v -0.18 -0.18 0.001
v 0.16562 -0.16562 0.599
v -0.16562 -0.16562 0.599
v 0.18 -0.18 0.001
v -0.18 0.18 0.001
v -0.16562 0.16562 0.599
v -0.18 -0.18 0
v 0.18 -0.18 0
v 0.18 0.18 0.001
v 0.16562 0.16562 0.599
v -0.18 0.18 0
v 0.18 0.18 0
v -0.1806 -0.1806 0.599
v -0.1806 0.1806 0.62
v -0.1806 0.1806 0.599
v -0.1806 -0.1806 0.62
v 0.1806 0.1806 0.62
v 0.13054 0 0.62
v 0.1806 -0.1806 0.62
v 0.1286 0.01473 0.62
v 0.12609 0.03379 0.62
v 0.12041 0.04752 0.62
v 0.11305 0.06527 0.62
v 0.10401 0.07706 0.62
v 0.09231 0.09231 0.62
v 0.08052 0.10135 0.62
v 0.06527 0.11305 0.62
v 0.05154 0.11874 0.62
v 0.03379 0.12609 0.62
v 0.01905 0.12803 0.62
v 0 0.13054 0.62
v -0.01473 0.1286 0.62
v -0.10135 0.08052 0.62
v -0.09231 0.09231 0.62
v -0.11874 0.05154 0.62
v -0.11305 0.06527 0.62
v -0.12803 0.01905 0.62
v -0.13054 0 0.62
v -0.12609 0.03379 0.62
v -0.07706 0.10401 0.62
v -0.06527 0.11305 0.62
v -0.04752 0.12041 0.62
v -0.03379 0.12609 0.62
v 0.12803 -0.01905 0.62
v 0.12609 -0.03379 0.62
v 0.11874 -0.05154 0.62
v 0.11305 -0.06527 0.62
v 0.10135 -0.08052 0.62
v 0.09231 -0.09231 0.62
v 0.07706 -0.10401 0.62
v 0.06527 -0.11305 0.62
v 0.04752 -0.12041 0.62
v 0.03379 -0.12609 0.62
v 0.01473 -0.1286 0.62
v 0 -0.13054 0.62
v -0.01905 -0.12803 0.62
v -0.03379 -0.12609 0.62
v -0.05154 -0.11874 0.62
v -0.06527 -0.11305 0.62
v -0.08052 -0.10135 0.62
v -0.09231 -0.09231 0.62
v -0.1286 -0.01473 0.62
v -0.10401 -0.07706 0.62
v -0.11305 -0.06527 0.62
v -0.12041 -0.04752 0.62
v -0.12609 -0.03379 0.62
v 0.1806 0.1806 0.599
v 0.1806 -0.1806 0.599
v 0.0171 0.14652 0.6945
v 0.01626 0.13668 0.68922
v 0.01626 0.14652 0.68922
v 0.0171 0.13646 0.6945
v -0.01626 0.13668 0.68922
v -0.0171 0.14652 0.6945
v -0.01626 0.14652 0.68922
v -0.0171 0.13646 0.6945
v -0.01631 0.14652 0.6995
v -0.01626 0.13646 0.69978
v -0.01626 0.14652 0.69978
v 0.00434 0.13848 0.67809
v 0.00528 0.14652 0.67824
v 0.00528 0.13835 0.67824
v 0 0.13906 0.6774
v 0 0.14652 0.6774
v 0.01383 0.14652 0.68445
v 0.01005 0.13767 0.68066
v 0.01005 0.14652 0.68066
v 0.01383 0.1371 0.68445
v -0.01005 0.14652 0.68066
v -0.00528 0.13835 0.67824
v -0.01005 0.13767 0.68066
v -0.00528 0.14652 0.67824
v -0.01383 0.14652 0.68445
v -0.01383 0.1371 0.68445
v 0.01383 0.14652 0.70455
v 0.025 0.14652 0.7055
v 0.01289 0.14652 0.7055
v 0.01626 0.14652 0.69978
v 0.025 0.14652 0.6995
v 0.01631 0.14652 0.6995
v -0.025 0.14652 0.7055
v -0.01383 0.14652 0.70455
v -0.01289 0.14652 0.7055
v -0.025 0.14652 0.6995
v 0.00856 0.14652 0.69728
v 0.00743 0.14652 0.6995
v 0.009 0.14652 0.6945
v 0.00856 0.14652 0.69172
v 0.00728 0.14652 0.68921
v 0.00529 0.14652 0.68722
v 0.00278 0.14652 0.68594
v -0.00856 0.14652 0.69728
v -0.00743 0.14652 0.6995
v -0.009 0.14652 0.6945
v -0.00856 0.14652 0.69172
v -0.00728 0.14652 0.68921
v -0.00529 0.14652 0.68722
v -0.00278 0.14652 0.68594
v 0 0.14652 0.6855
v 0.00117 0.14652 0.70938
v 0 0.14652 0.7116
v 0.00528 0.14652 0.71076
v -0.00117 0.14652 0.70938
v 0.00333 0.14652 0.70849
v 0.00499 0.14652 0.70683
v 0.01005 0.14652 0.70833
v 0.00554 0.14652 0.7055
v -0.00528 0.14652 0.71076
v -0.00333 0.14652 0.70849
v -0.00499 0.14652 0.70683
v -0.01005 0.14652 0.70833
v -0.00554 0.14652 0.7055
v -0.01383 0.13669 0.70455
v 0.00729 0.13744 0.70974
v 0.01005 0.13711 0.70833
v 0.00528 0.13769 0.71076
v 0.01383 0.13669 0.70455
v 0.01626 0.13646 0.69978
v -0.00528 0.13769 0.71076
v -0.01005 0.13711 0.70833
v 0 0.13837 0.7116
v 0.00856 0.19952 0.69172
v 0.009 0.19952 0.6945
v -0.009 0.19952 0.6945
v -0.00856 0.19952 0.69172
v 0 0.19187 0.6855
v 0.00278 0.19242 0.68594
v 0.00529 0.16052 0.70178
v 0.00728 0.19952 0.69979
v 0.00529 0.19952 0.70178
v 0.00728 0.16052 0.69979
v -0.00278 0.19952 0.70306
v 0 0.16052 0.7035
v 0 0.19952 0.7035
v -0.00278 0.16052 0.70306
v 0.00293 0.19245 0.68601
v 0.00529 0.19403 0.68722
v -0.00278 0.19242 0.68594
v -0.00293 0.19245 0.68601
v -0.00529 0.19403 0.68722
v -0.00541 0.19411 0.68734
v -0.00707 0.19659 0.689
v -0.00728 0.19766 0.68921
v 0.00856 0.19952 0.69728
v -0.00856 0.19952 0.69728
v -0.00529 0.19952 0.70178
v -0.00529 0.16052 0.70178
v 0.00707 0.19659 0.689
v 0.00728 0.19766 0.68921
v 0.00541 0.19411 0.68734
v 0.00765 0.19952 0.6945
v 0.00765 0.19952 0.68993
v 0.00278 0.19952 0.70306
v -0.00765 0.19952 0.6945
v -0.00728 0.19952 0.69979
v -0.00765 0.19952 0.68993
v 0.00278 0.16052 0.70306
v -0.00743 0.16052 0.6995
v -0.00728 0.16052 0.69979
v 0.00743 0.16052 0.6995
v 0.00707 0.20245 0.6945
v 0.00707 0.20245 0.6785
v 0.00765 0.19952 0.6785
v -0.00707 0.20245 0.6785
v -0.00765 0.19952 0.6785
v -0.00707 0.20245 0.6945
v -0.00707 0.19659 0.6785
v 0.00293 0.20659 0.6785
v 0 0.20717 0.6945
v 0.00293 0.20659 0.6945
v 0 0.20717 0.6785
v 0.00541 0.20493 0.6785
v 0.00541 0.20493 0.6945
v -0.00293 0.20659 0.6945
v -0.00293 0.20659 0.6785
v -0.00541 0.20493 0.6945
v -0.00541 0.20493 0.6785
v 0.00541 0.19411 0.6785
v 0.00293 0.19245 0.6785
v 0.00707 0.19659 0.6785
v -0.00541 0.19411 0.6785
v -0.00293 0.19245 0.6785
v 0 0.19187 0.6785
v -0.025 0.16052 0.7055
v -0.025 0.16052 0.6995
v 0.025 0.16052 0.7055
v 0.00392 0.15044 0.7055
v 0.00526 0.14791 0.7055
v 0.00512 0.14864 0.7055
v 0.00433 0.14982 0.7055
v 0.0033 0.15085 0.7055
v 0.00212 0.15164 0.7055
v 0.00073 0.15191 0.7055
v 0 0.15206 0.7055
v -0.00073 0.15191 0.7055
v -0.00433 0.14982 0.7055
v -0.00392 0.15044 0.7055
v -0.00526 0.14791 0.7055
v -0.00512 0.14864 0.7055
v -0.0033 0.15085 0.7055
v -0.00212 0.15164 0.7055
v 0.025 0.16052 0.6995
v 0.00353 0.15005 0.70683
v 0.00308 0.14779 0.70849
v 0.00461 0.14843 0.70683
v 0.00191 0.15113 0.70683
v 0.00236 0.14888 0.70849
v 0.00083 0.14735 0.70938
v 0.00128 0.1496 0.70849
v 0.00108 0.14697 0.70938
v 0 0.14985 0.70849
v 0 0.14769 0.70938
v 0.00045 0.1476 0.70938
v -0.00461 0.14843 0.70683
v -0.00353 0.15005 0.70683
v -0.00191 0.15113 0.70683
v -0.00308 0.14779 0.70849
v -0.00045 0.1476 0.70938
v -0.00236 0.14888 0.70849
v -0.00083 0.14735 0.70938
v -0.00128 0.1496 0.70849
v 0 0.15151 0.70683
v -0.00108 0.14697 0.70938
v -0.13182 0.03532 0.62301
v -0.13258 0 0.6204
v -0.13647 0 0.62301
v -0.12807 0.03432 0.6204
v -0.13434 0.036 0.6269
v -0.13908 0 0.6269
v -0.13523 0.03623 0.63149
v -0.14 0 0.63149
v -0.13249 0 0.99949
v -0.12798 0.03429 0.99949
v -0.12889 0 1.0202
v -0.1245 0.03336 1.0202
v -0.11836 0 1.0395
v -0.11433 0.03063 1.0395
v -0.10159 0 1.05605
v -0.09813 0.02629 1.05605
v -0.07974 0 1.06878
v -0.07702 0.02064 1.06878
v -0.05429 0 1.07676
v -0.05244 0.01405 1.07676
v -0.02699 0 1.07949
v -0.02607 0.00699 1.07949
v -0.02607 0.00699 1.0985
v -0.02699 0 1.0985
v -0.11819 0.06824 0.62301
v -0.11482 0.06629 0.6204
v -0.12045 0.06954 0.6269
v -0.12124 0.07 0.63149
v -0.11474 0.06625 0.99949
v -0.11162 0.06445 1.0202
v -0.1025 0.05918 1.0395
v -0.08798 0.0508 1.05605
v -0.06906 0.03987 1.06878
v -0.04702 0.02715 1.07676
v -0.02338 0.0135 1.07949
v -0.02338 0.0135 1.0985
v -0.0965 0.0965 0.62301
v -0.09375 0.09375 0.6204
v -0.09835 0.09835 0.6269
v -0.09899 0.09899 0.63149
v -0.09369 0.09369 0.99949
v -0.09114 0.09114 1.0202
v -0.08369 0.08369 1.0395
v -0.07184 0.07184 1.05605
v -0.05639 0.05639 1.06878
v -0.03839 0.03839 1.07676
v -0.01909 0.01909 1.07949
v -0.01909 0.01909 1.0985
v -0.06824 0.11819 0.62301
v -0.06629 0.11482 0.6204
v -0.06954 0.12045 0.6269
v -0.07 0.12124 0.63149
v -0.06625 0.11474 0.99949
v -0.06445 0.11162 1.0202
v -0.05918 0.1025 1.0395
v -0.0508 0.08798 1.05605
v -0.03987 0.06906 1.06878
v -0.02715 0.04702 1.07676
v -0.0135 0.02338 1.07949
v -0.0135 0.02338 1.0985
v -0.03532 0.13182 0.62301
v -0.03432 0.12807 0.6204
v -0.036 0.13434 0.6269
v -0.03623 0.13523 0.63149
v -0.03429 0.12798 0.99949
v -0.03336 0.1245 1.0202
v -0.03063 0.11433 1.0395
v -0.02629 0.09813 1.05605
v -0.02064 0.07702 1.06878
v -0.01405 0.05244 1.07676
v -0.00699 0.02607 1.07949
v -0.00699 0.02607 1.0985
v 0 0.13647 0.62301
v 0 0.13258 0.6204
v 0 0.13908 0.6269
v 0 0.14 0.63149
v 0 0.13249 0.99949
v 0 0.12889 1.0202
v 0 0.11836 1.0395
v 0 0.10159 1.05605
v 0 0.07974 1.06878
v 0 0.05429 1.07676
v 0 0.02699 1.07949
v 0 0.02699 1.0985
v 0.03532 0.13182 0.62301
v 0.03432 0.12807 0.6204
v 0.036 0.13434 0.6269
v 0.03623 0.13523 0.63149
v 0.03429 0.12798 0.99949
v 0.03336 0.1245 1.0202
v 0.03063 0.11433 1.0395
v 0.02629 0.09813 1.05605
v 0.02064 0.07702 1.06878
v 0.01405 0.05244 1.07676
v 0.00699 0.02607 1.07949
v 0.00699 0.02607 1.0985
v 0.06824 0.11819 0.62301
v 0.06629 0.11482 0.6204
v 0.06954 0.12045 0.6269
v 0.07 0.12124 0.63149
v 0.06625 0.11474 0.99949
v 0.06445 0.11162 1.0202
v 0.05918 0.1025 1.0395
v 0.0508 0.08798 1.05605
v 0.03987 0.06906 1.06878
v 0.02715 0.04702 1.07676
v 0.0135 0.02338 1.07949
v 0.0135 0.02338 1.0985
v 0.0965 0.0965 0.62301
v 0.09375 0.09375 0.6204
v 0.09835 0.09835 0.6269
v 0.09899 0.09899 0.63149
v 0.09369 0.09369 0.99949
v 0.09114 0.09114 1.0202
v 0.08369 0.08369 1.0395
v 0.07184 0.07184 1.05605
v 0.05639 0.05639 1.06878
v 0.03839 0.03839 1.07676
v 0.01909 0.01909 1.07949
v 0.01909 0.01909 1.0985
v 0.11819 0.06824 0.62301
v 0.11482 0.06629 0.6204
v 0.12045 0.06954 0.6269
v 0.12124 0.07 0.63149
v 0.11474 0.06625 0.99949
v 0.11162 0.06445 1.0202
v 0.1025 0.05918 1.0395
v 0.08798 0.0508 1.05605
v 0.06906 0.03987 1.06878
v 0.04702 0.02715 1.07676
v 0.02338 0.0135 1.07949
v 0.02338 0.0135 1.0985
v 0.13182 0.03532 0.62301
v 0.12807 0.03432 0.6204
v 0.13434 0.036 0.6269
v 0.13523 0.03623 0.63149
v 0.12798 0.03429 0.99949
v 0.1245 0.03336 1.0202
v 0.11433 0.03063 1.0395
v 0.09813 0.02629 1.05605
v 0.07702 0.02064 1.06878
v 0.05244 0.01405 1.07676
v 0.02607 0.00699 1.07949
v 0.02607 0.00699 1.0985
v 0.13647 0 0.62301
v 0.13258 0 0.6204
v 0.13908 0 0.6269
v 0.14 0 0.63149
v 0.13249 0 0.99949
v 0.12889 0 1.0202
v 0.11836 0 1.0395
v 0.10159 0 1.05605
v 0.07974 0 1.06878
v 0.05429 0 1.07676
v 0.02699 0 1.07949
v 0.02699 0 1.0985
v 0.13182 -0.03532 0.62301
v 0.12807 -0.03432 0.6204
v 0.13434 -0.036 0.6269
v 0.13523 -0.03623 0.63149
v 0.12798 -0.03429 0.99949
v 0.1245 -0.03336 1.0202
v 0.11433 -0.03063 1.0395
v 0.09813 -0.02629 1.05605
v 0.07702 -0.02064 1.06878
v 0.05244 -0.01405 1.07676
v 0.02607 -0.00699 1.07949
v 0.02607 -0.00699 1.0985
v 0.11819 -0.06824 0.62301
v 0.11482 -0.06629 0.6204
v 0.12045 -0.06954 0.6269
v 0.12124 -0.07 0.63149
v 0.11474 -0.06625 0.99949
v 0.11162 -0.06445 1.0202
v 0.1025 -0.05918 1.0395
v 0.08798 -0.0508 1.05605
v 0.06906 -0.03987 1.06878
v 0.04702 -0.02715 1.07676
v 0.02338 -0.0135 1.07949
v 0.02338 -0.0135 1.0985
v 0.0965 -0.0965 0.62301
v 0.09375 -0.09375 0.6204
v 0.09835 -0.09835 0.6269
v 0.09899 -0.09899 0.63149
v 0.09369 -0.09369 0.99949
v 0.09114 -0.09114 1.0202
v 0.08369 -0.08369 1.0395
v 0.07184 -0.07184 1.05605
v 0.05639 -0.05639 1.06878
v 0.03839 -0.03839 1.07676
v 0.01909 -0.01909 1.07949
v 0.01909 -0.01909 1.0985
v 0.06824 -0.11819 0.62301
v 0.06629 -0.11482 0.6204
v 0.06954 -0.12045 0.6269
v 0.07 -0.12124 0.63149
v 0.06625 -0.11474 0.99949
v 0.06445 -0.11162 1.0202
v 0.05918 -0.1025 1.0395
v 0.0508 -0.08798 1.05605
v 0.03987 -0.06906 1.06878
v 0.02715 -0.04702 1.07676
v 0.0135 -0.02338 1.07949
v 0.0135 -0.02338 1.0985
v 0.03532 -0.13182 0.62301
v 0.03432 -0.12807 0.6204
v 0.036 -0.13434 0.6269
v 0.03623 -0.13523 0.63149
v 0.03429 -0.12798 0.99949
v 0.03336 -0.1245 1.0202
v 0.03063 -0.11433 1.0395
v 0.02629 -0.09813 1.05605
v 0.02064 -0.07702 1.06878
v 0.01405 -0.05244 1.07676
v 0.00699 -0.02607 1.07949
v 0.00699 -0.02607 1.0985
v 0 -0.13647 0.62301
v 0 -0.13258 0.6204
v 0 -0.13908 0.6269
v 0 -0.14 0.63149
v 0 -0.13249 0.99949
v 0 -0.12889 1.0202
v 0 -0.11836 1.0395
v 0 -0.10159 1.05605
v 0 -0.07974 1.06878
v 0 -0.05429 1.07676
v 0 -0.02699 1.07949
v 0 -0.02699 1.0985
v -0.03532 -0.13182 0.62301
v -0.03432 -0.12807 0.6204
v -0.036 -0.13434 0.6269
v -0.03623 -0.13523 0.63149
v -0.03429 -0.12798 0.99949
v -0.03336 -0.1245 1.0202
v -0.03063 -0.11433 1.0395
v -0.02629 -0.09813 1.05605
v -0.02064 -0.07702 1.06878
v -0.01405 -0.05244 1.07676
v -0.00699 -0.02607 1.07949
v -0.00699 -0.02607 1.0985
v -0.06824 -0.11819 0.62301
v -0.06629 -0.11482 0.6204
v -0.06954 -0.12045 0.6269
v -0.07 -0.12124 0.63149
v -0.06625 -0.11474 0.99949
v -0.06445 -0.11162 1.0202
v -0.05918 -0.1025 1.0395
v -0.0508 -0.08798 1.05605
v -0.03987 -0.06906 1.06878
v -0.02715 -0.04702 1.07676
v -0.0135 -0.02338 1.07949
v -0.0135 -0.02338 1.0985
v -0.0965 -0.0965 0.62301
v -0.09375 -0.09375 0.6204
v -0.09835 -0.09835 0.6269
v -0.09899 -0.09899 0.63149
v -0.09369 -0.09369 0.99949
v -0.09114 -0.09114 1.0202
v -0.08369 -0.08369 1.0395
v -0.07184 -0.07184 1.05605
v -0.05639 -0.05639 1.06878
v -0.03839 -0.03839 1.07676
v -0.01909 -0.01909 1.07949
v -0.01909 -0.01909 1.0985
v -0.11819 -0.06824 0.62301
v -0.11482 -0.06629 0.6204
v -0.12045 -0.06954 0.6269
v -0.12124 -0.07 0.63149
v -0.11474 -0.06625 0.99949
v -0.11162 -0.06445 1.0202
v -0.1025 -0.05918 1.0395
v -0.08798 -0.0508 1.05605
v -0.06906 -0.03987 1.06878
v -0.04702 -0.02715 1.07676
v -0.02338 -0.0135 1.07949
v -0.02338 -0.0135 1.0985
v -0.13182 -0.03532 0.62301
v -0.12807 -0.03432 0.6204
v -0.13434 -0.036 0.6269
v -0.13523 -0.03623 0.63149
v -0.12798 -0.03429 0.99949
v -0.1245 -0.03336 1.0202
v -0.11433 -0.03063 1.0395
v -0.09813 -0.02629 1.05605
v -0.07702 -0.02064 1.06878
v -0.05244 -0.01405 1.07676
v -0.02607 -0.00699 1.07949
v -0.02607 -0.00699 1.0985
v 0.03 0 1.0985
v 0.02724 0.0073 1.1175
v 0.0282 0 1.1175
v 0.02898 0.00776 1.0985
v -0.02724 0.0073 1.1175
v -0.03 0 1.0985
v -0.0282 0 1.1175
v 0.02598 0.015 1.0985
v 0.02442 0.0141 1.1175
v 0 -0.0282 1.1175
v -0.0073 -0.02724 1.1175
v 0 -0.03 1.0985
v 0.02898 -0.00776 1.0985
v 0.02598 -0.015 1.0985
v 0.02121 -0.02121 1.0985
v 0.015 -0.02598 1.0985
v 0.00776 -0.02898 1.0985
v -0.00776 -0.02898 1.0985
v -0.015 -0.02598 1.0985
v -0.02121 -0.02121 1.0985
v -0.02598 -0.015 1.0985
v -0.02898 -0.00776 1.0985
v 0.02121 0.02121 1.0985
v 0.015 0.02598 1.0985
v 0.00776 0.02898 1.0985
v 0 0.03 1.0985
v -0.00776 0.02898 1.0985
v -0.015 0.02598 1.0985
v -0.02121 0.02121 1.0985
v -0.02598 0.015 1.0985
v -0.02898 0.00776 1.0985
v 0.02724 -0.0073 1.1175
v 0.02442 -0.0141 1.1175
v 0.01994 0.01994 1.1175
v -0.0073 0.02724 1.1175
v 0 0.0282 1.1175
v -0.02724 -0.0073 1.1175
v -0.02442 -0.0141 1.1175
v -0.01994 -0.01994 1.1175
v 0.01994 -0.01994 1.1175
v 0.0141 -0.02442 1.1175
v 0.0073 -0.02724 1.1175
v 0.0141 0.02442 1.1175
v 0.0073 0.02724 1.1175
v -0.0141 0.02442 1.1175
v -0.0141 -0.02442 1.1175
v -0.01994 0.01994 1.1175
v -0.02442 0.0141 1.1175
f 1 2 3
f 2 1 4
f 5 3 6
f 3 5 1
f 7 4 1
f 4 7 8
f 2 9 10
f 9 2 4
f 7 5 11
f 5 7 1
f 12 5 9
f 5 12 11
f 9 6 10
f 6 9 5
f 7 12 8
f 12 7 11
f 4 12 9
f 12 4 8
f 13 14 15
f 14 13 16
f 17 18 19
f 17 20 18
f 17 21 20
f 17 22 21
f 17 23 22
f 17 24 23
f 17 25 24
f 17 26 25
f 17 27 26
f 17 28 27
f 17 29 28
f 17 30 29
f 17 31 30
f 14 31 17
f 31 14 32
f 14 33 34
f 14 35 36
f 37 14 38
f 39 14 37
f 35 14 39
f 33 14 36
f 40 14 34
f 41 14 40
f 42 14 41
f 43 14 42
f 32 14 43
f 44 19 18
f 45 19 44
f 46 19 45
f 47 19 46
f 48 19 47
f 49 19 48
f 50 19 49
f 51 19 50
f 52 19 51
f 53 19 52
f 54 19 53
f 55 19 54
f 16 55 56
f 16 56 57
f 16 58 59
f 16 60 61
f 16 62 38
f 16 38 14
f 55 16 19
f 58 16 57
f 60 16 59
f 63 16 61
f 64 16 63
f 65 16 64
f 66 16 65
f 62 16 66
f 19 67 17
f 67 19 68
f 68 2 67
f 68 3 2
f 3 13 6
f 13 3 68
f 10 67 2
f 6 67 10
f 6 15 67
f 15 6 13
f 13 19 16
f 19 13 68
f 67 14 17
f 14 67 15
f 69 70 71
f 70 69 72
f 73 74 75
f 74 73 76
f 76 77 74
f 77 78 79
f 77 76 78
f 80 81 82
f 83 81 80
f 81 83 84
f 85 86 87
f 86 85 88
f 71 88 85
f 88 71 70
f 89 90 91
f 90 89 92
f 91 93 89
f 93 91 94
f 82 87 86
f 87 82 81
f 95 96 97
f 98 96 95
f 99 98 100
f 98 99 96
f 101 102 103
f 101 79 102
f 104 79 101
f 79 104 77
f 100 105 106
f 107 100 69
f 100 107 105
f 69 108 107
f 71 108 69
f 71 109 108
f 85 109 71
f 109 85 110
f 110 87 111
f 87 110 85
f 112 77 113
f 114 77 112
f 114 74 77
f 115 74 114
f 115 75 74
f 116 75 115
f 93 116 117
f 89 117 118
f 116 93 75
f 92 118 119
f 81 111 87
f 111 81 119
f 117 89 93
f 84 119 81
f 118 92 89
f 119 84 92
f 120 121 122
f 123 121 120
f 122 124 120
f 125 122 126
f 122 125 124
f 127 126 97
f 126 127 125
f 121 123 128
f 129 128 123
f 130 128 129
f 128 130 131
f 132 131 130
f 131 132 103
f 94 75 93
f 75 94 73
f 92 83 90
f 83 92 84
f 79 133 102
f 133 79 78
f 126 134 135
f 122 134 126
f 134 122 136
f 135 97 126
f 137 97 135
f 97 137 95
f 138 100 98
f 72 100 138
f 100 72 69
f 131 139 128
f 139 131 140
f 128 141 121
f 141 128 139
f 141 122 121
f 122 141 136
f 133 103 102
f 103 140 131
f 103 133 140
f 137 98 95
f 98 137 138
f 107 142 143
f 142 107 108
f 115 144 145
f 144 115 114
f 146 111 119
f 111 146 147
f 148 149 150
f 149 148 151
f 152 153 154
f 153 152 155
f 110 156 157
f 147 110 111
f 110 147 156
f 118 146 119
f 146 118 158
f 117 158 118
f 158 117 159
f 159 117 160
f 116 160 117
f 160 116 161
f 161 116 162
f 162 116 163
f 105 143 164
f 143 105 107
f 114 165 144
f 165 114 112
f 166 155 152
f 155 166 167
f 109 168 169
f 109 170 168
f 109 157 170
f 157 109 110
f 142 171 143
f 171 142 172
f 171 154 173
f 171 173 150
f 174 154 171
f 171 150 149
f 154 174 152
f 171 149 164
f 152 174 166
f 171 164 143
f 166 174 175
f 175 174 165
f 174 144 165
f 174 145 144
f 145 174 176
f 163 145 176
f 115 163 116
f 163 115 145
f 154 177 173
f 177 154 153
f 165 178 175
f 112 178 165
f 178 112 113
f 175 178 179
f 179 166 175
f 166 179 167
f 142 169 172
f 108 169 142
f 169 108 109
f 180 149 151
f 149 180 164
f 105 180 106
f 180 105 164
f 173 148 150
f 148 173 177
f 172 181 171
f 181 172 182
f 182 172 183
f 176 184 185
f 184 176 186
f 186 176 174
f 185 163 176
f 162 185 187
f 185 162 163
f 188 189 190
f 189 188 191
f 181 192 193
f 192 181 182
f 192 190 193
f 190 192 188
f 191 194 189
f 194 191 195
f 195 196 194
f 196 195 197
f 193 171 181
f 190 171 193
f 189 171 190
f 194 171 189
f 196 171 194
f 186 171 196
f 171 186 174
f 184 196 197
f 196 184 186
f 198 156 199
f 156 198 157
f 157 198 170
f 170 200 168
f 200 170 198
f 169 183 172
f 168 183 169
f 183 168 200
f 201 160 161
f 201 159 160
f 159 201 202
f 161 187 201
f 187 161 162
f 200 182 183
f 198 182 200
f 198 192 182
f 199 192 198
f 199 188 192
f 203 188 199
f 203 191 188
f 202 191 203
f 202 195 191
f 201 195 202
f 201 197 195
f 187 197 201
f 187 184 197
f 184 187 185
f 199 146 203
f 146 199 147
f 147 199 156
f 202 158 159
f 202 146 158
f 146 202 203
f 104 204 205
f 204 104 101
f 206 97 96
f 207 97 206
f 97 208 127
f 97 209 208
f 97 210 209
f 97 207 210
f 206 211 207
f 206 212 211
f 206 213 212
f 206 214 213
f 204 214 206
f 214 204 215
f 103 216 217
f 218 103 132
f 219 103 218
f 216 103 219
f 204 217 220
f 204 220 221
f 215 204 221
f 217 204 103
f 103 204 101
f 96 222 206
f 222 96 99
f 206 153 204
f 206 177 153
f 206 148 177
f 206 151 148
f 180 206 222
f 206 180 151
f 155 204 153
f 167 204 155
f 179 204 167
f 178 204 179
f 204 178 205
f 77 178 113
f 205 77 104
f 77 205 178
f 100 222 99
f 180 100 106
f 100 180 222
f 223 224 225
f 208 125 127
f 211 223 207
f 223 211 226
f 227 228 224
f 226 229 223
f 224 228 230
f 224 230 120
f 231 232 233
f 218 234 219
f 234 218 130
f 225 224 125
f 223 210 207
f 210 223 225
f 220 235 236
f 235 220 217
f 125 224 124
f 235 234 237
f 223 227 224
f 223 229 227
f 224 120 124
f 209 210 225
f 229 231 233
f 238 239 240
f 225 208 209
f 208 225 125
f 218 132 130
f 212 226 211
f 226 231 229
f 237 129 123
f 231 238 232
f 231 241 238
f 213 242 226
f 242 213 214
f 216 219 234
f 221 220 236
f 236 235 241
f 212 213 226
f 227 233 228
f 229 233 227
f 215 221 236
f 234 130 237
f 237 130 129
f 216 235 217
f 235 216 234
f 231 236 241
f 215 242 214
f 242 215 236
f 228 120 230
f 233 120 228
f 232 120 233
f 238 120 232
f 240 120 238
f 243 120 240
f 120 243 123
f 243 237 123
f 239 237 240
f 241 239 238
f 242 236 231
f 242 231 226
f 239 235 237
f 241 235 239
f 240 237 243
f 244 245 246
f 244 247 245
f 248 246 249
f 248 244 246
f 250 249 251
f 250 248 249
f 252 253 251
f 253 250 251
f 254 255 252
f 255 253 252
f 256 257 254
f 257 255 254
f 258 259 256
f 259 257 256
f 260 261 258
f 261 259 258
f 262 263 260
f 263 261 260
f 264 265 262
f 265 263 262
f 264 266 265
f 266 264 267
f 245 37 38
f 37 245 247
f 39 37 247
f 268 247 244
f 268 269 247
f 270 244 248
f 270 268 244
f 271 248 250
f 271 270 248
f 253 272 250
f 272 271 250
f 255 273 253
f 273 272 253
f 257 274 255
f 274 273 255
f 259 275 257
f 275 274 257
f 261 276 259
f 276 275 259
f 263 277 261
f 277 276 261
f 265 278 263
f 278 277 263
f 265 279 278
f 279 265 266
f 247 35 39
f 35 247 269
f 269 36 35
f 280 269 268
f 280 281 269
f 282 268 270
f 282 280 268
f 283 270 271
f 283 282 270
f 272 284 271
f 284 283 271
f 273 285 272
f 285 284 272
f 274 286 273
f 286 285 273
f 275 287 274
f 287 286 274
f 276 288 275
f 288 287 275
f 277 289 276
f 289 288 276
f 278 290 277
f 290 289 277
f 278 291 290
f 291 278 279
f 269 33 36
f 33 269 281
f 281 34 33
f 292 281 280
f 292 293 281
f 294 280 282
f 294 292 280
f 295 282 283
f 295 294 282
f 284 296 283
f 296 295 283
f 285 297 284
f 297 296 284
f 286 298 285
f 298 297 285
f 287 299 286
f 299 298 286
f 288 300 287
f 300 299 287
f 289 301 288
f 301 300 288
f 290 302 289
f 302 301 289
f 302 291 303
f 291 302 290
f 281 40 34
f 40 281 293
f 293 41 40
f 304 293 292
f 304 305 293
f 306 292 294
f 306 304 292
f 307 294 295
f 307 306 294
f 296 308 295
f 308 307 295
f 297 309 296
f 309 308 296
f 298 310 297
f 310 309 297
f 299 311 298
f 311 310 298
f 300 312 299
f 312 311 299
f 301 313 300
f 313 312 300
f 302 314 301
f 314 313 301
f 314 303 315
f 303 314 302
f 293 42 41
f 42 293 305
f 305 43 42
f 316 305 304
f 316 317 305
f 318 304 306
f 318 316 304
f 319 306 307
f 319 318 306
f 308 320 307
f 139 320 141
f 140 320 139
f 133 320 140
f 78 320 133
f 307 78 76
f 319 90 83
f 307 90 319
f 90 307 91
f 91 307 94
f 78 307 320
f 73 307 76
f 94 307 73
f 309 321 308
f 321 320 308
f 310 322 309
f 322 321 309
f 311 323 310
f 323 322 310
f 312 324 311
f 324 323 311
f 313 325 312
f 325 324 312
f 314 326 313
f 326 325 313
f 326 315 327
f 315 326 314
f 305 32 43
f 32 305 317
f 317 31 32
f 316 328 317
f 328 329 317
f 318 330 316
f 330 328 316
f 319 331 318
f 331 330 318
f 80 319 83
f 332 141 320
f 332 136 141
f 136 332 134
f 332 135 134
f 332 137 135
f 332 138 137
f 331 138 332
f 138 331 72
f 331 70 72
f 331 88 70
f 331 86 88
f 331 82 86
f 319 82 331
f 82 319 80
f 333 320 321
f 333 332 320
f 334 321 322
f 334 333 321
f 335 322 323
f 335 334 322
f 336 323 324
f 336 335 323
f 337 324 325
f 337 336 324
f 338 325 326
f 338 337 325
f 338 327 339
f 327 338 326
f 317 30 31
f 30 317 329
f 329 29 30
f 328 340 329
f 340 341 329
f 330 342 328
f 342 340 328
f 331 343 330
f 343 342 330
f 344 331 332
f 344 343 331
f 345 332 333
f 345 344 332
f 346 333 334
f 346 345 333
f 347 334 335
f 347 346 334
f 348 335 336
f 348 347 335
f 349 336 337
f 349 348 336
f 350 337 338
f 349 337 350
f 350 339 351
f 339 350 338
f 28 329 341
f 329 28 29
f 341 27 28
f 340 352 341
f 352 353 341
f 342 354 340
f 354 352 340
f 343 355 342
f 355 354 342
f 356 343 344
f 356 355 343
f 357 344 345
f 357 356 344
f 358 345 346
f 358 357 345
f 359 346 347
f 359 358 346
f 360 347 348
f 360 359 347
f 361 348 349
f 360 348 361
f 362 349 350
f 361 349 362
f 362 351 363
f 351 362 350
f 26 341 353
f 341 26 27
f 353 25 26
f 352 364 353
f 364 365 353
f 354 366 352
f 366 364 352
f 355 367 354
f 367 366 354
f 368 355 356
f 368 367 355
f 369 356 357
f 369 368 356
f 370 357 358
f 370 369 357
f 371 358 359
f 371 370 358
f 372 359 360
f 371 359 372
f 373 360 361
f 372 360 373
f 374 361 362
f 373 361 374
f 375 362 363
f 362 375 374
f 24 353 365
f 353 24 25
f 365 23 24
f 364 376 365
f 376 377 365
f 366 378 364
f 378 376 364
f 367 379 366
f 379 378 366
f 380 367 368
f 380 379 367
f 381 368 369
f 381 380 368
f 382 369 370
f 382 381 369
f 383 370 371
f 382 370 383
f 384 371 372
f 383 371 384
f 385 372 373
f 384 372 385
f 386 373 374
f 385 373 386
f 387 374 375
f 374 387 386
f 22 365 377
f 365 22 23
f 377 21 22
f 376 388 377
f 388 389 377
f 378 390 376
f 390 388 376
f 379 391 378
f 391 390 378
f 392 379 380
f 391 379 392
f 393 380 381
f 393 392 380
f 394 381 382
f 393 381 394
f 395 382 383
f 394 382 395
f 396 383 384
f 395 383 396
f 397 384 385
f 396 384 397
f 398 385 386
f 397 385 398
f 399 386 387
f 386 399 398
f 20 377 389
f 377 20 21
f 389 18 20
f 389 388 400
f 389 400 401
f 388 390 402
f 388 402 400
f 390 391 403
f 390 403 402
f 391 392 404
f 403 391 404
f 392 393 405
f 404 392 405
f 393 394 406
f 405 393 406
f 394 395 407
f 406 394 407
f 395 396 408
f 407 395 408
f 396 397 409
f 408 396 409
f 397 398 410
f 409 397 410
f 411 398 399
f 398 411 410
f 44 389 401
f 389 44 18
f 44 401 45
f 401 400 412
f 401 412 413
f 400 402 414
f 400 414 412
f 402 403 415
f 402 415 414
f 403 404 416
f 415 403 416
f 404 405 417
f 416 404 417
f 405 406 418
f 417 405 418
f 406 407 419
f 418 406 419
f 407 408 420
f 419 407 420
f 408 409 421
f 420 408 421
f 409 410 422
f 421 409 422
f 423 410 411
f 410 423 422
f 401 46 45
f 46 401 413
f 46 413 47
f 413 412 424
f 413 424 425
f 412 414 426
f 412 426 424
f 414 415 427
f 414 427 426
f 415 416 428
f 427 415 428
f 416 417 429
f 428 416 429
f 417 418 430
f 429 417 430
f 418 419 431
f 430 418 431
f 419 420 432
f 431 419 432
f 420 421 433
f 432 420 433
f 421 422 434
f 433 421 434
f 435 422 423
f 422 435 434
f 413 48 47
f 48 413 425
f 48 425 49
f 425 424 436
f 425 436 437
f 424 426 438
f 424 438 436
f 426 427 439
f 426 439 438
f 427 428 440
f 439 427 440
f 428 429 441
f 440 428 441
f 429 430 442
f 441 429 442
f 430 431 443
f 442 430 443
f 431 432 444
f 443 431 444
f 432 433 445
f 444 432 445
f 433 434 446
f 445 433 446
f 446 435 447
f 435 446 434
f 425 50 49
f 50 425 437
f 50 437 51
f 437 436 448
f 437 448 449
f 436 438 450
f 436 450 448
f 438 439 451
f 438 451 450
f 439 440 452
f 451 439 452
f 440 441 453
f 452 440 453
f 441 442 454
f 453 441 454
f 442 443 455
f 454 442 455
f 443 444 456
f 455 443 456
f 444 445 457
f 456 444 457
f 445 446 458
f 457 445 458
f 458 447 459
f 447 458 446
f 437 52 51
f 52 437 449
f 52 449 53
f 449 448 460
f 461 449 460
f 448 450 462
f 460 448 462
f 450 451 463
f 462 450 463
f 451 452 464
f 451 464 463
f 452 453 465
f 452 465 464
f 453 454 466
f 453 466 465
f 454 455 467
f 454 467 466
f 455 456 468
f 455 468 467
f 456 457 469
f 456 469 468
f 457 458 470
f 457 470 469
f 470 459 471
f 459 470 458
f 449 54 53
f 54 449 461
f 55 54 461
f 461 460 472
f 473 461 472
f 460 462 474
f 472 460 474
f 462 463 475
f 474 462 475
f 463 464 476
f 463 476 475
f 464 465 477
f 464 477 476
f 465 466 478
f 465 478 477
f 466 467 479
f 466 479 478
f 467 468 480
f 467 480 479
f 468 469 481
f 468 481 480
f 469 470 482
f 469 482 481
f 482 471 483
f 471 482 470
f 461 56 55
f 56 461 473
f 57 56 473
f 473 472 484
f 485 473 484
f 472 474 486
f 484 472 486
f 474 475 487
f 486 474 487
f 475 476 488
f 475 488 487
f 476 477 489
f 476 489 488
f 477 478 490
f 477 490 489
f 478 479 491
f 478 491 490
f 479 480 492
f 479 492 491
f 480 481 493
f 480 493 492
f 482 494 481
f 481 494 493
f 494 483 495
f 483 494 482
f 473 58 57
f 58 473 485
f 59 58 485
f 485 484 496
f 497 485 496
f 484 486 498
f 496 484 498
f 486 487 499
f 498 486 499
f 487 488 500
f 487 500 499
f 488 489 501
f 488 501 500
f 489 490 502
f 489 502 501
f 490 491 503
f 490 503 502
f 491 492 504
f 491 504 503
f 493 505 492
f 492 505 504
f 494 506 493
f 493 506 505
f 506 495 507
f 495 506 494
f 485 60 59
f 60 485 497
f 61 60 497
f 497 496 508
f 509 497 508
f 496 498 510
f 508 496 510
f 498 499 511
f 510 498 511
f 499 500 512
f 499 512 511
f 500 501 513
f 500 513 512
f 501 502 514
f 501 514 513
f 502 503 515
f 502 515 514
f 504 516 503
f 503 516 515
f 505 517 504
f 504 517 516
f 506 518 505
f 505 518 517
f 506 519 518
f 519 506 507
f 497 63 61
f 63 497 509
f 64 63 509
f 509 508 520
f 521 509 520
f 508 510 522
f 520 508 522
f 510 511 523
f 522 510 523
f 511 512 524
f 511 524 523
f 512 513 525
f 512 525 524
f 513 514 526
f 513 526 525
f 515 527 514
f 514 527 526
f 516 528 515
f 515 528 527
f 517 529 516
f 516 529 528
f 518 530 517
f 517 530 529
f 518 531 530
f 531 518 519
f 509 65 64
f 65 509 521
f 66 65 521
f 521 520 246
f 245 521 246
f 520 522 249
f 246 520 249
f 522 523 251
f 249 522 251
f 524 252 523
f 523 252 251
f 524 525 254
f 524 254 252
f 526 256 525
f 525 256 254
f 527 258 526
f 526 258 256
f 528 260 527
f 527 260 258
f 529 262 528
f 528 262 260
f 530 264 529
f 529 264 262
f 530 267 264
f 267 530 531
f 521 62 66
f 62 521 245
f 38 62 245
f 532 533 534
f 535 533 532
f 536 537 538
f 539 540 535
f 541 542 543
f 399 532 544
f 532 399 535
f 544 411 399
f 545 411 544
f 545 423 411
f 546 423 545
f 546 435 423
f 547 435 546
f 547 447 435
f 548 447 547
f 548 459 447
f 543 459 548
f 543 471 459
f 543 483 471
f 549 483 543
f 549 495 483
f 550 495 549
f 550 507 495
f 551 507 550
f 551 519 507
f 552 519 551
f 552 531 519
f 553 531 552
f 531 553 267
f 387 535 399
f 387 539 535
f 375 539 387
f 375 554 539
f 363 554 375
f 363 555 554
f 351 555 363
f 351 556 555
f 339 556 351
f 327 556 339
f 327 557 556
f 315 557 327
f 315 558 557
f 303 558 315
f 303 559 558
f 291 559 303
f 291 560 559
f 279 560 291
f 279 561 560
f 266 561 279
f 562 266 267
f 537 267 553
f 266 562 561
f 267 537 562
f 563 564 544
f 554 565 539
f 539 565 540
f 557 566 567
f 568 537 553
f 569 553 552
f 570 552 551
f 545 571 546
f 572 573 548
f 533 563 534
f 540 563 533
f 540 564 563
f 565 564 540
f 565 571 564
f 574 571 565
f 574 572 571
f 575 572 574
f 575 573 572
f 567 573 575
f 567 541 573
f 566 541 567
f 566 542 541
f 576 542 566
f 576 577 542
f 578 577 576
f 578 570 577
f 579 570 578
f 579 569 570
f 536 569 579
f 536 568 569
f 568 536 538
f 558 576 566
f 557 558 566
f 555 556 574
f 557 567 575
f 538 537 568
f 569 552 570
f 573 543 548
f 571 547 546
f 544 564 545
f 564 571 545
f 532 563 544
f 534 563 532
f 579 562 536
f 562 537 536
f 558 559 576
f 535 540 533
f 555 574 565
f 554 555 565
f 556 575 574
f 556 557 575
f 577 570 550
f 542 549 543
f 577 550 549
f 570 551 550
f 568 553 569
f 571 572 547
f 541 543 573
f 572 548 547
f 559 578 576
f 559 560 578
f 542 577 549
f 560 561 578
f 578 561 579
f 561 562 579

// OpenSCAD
// =====================================================================
//  WATER CAN (20 L / 5-gal style) ON STAND  --  GTA V MLO prop
//  ------------------------------------------------------------------
//  UNITS: 1 unit = 1 meter. GTA V world coordinates are in meters,
//  so export at 1:1 scale -- no scaling needed downstream.
//
//  Based on a standard 20 L (5-gallon) water can with a tap fitted at
//  the bottom front, sitting on a box-style stand (as in the photo).
//
//  REAL-WORLD REFERENCE SIZES
//    20 L can  : ~0.46-0.51 m tall, ~0.27-0.29 m diameter
//    55 mm neck thread, ~60 mm outer cap
//    Tap       : ~65-90 mm spout, mounted low on the can body
//    Stand     : 0.6-1.0 m tall counter/dispenser stand
//    Total build height here: ~1.10 m (tap at ~0.66 m -- comfortable
//    filling height for a glass, matches the photo proportions)
//
//  EXPORT (GUI):   File > Export > STL  (or 3MF / OFF)
//  EXPORT (CLI):
//    openscad -o water_can_full.stl water_can_stand.scad
//    openscad -o water_can_only.stl export_can.scad
//    openscad -o stand_only.stl     export_stand.scad
//  (The included export_*.scad wrappers build one part at a time; the
//   parts are also selectable in the GUI via `part`, or with
//   -D part="can"  -- note: this OpenSCAD 2021.01 has no OBJ exporter,
//   STL/3MF import fine into Blender+Sollumz and 3ds Max GIMS.)
//
//  GTA PIPELINE: import the STL/3MF into Blender (+Sollumz) or 3ds Max
//  (GIMS Evo), turn it into a ydr prop. Each part is built with its
//  origin at its own base-centre, which is the friendly pivot for
//  prop placement. `segments = 24` keeps the mesh game-ready
//  (~1-2 k triangles total).
// =====================================================================

/* [Output] */
// Which part to build / export ("all", "can", "stand")
part = "all"; // [all, can, stand]
// Cylinder/revolve resolution. Game-friendly: 16-32. Preview: 48+
segments    = 24;
// Show a 1.2 m ground reference square (preview only)
show_ground = false;

/* [Can -- real-world scale, meters] */
// Total can height (20 L can is 0.46-0.51 m)
can_h     = 0.48;
// Body diameter at the base
can_d_bot = 0.28;
// Body diameter at the shoulder (slight taper, like real cans)
can_d_top = 0.265;
// Plastic wall thickness (3 mm) -- used when hollow = true
wall      = 0.003;
// false = solid single-skin mesh (lowest poly, recommended for game)
// true  = shelled can with 3 mm walls
hollow       = false;
// Rounded base fillet radius
base_fillet  = 0.012;
// Height where the shoulder curve starts
shoulder_z   = 0.38;
// Height of the shoulder curve
shoulder_h   = 0.08;
// Neck radius (55 mm thread finish ~= 0.027 m)
neck_r       = 0.027;

/* [Cap] */
cap_r = 0.030;   // ~60 mm outer diameter
cap_h = 0.018;

/* [Tap] */
// Fit a dispensing tap at the bottom front of the can
fit_tap      = true;
// Tap centre height above the can base
tap_z        = 0.075;
// How far the spout sticks out from the can wall
tap_len      = 0.065;
// Spout radius
tap_r        = 0.009;
// Down-turned nozzle length at the spout end
tap_nozzle_h = 0.016;
// How deep the tap boss sinks into the can wall
tap_embed    = 0.004;

/* [Stand -- real-world scale, meters] */
stand_w   = 0.36;   // footprint width  (photo shows a box stand)
stand_d   = 0.36;   // footprint depth
stand_h   = 0.60;   // height (0.6-1.0 m typical; photo ~counter height)
stand_taper = 0.92; // 1.0 = straight sides, <1 = tapers inward toward top
lip       = 0.015;  // top ledge overhang all round
lip_h     = 0.02;   // top ledge thickness
stand_wall = 0.02;  // wall thickness -- used when stand_hollow = true
stand_hollow = false;

/* [Preview colours] */
can_color   = [0.93, 0.91, 0.85];  // cream white plastic
cap_color   = [0.95, 0.95, 0.95];
tap_color   = [0.92, 0.92, 0.92];  // white plastic tap (as in photo)
stand_color = [0.16, 0.19, 0.15];  // dark olive/charcoal

// ---------------------------------------------------------------------
//  DERIVED VALUES
// ---------------------------------------------------------------------
can_r_bot = can_d_bot / 2;
can_r_top = can_d_top / 2;

$fn = segments;

// Arc helper: ellipse/arc points from angle a0 to a1 (degrees) around
// centre (cx, cz) with radii (rx, rz). Returns 2D [x, z] points.
function arc_pts(cx, cz, rx, rz, a0, a1, steps) =
    [for (i = [0 : steps])
        let (a = a0 + (a1 - a0) * i / steps)
        [cx + rx * cos(a), cz + rz * sin(a)]];

// 2D half-profile of the can (r, z), revolved around the Z axis.
// Base fillet -> slightly tapered wall -> shoulder curve -> straight neck.
function can_profile(r_bot, r_top, r_neck, h, z_sh, sh_h, fil) =
    concat(
        [[0, 0]],                                              // bottom centre
        [[r_bot - fil, 0]],                                    // bottom face
        arc_pts(r_bot - fil, fil, fil, fil, 270, 360, 4),      // base fillet
        [[r_top, z_sh]],                                       // tapered wall
        arc_pts(r_neck, z_sh, r_top - r_neck, sh_h, 0, 90, 6), // shoulder curve
        [[r_neck, h]],                                         // straight neck
        [[0, h]]                                               // top centre
    );

// Radius of the can wall at a given height (linear taper below shoulder)
function can_r_at(z) =
    can_r_bot + (can_r_top - can_r_bot) * min(z, shoulder_z) / shoulder_z;

// ---------------------------------------------------------------------
//  CAN
// ---------------------------------------------------------------------
module revolved_can(r_bot, r_top, r_neck, h) {
    rotate_extrude($fn = segments)
        polygon(points = can_profile(r_bot, r_top, r_neck, h,
                                     shoulder_z, shoulder_h, base_fillet));
}

module tap(r_wall) {
    y0 = r_wall - tap_embed;   // start slightly inside the can wall
    union() {
        // mounting boss / flange against the can
        translate([0, y0, tap_z])
            rotate([-90, 0, 0]) cylinder(h = 0.012, r = tap_r * 1.9, $fn = 20);
        // spout pointing forward (+Y)
        translate([0, y0, tap_z])
            rotate([-90, 0, 0]) cylinder(h = tap_len, r = tap_r, $fn = 20);
        // down-turned nozzle at the spout end
        translate([0, y0 + tap_len, tap_z - tap_nozzle_h])
            cylinder(h = tap_nozzle_h, r = tap_r * 0.85, $fn = 16);
        // lever handle on top of the spout (embedded 4 mm so the
        // union stays manifold -- no tangent face contact)
        translate([-0.025, y0 + 0.012, tap_z + tap_r - 0.004])
            cube([0.05, 0.014, 0.006]);
        translate([0, y0 + 0.012, tap_z + tap_r])
            sphere(r = 0.006, $fn = 16);
    }
}

module water_can() {
    union() {
        color(can_color)
        if (hollow) {
            difference() {
                revolved_can(can_r_bot, can_r_top, neck_r, can_h);
                translate([0, 0, wall])
                    revolved_can(can_r_bot - wall, can_r_top - wall,
                                 neck_r - wall, can_h - wall);
            }
        } else {
            revolved_can(can_r_bot, can_r_top, neck_r, can_h);
        }
        // screw cap on top (embedded 1 mm into the neck for a clean union)
        color(cap_color)
            translate([0, 0, can_h - 0.001])
                cylinder(h = cap_h + 0.001, r1 = cap_r, r2 = cap_r * 0.94,
                         $fn = segments);
        // dispensing tap
        if (fit_tap)
            color(tap_color)
                tap(can_r_at(tap_z));
    }
}

// ---------------------------------------------------------------------
//  STAND
// ---------------------------------------------------------------------
module stand() {
    tw = stand_w * stand_taper;   // top width of tapered body
    td = stand_d * stand_taper;   // top depth of tapered body
    difference() {
        union() {
            // tapered pedestal body
            hull() {
                translate([0, 0, 0.0005])
                    cube([stand_w, stand_d, 0.001], center = true);
                translate([0, 0, stand_h - 0.0005])
                    cube([tw, td, 0.001], center = true);
            }
            // top ledge (overlaps the pedestal 1 mm for a clean union)
            translate([0, 0, stand_h - 0.001])
                translate([0, 0, (lip_h + 0.001) / 2])
                    cube([tw + 2 * lip, td + 2 * lip, lip_h + 0.001],
                         center = true);
        }
        // optional hollow underside (useful only for 3D printing)
        if (stand_hollow)
            hull() {
                translate([0, 0, stand_wall])
                    cube([stand_w - 2 * stand_wall,
                          stand_d - 2 * stand_wall, 0.001], center = true);
                translate([0, 0, stand_h - 0.0005])
                    cube([tw - 2 * stand_wall,
                          td - 2 * stand_wall, 0.001], center = true);
            }
    }
}

// ---------------------------------------------------------------------
//  ASSEMBLY
// ---------------------------------------------------------------------
if (part == "can") {
    water_can();
} else if (part == "stand") {
    color(stand_color) stand();
} else {
    // explicit union so the sunk-in can merges into one watertight solid
    union() {
        color(stand_color) stand();
        // can sits on the ledge top, sunk 0.5 mm for a watertight union
        translate([0, 0, stand_h + lip_h - 0.0005])
            water_can();
    }
}

if (show_ground)
    %translate([0, 0, -0.001]) cube([1.2, 1.2, 0.002], center = true);

// Sanity check in the console: overall bounding dimensions in meters
total_h = stand_h + lip_h + can_h + cap_h;
echo(str("Can height: ", can_h, " m | Footprint: ", stand_w, " x ", stand_d,
         " m | TOTAL build height: ", total_h, " m"));
